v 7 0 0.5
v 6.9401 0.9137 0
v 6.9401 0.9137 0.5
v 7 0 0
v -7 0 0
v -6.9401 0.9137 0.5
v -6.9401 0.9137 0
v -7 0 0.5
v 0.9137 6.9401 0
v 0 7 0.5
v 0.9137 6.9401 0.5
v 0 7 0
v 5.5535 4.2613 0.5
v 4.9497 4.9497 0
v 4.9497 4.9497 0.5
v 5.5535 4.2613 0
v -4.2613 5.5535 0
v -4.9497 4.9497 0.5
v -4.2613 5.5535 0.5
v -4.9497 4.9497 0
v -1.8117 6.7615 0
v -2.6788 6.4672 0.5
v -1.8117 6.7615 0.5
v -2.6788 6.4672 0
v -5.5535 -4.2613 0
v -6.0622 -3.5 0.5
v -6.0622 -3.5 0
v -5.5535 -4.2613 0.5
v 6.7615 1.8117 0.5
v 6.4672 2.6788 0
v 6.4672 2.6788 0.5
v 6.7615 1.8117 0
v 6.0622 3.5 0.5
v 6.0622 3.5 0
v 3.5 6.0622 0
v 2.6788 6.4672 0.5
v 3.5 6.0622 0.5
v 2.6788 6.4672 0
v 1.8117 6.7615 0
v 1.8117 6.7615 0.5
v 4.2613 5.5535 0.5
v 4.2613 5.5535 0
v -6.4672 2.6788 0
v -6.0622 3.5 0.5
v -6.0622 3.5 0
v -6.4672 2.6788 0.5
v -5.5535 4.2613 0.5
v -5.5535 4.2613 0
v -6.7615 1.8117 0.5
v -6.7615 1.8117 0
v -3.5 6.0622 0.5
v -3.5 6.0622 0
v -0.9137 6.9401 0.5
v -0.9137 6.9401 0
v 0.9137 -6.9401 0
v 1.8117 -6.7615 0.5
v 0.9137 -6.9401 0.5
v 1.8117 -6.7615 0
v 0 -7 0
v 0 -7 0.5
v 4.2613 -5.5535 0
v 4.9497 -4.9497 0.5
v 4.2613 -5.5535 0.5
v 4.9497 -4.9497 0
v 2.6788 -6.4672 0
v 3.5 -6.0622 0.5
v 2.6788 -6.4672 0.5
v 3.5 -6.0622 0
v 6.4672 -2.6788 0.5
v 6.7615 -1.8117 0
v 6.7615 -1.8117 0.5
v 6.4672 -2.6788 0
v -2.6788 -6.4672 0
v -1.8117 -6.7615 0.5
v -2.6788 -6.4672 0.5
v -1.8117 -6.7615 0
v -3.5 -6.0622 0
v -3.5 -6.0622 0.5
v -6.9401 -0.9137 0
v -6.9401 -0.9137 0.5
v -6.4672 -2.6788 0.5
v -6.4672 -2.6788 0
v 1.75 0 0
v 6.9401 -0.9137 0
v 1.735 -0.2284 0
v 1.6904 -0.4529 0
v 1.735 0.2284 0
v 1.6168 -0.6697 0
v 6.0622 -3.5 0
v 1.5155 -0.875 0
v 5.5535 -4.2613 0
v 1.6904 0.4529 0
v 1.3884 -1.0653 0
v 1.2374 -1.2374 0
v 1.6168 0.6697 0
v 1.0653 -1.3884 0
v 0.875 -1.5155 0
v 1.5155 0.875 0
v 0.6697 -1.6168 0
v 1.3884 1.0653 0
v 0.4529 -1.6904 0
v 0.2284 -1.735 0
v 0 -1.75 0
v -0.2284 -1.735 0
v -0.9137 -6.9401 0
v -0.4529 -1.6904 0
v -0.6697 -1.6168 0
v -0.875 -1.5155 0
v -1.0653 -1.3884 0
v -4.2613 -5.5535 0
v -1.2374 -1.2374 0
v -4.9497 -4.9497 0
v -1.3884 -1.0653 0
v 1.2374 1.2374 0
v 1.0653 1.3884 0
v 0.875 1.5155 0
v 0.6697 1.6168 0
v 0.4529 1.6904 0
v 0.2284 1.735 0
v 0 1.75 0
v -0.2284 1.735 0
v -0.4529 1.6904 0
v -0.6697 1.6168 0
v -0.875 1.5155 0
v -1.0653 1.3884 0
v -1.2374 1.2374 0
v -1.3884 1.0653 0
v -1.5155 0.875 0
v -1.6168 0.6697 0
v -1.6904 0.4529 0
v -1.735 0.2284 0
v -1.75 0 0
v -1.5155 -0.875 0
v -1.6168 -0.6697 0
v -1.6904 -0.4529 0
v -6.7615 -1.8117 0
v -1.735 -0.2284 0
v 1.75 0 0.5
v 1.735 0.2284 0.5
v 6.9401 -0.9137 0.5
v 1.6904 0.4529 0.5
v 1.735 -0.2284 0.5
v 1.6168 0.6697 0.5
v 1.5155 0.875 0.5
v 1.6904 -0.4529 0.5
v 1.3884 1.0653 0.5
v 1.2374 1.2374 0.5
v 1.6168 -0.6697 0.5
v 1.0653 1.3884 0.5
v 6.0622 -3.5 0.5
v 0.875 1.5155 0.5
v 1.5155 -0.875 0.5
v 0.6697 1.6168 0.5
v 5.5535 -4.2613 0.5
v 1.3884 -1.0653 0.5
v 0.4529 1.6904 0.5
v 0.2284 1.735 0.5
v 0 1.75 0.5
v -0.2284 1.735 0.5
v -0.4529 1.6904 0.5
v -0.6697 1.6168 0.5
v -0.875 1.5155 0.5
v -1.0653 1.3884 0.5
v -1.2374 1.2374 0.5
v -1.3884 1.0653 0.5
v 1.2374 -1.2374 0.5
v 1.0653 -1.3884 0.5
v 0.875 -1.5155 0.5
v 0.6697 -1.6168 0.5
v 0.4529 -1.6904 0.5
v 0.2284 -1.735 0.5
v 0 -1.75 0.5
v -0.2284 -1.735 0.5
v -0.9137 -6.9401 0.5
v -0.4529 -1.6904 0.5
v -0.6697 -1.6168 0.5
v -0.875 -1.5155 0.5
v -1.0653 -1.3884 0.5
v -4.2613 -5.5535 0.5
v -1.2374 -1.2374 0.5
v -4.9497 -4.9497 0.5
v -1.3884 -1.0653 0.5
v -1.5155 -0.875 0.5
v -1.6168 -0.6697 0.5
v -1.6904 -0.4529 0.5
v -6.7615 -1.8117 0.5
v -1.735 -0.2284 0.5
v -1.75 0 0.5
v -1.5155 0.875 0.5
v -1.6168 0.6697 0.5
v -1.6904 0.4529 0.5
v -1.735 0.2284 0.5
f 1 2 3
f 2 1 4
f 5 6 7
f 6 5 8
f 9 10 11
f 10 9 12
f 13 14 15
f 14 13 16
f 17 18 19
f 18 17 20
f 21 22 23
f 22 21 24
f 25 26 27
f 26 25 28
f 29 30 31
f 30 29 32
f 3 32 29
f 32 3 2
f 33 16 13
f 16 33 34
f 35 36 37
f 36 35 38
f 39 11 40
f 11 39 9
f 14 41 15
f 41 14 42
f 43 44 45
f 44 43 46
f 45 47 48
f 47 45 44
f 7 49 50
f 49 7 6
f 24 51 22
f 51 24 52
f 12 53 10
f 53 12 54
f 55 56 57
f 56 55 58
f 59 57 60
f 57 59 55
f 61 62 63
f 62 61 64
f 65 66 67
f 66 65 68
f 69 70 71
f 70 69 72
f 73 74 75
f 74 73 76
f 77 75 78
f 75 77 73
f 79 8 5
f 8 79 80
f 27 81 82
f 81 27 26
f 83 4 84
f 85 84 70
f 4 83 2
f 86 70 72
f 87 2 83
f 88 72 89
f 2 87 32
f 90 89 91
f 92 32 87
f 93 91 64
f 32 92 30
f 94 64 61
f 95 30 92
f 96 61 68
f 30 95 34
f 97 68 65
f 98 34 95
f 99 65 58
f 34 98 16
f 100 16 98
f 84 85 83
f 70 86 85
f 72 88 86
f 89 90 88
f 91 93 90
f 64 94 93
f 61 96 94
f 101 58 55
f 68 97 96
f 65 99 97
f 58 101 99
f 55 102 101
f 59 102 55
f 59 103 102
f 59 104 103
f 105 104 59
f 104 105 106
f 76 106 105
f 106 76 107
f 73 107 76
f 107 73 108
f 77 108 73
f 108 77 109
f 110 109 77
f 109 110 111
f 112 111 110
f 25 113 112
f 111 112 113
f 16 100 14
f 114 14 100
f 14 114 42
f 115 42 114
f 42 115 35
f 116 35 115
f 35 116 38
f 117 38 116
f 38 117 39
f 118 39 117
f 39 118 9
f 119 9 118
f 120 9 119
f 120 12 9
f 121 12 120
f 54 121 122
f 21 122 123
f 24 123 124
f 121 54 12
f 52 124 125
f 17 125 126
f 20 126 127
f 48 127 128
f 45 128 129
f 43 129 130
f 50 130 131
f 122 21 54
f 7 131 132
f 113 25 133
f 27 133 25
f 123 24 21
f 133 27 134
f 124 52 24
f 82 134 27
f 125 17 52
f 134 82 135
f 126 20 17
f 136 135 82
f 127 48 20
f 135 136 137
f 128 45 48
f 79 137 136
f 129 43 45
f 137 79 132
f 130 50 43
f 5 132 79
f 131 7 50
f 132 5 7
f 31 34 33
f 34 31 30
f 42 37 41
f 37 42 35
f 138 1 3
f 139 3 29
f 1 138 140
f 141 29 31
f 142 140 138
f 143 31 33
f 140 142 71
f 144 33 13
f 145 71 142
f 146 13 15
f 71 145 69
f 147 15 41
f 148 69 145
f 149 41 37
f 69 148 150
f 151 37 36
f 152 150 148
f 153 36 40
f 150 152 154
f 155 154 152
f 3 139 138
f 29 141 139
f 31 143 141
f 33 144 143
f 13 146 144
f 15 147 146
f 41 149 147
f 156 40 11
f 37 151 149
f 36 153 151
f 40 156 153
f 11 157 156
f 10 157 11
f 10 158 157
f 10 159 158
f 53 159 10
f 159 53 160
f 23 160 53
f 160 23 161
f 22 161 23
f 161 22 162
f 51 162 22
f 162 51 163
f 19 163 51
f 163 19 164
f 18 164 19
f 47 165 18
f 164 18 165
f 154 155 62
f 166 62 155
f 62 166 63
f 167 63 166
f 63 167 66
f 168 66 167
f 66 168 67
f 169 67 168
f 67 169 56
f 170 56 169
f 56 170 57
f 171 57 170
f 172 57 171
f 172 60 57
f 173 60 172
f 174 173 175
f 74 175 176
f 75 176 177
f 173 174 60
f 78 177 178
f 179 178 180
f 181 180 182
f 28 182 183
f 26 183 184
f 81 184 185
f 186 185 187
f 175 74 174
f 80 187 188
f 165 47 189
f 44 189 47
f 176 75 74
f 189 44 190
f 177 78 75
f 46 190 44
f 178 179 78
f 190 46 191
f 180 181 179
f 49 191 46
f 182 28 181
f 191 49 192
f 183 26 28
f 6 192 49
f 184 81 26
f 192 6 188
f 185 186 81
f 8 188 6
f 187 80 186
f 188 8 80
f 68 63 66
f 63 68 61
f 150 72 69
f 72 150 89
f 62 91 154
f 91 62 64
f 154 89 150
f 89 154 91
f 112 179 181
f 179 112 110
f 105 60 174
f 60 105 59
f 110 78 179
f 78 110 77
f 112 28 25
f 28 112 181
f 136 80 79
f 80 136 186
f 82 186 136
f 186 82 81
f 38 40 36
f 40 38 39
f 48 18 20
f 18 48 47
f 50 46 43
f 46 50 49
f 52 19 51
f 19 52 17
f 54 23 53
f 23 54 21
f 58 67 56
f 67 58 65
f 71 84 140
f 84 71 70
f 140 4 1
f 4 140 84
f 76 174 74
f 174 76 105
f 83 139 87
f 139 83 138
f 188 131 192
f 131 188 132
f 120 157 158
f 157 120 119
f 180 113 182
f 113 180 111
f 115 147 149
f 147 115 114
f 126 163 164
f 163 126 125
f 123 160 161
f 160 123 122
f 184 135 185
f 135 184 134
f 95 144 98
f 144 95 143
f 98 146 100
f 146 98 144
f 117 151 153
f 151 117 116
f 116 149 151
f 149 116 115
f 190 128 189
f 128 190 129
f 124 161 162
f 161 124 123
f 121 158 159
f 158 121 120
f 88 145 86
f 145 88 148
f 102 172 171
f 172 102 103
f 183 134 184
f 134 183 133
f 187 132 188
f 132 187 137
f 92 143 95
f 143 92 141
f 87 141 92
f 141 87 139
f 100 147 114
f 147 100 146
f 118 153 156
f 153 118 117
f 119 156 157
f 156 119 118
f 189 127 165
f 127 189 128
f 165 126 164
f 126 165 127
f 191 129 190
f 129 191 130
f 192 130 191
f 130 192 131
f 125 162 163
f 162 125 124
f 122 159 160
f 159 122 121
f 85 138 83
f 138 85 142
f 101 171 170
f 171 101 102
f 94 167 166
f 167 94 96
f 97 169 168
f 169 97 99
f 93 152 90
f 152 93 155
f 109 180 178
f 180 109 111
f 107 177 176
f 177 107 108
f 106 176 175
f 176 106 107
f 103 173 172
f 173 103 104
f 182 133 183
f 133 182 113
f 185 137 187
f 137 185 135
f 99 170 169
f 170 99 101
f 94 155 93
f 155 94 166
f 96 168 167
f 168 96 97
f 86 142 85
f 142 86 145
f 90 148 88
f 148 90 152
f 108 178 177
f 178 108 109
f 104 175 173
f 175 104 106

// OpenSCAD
// Gen-CJ — assembly gap shim, h = run_clear (rotor face -> flange); copper is inside the flanges
include <parameters.scad>;
$fn = 48;
difference() {
    cylinder(d=spacer_pad_od, h=gap_spacer_h);
    translate([0, 0, -0.1]) cylinder(d=spacer_pad_id, h=gap_spacer_h + 0.2);
}
